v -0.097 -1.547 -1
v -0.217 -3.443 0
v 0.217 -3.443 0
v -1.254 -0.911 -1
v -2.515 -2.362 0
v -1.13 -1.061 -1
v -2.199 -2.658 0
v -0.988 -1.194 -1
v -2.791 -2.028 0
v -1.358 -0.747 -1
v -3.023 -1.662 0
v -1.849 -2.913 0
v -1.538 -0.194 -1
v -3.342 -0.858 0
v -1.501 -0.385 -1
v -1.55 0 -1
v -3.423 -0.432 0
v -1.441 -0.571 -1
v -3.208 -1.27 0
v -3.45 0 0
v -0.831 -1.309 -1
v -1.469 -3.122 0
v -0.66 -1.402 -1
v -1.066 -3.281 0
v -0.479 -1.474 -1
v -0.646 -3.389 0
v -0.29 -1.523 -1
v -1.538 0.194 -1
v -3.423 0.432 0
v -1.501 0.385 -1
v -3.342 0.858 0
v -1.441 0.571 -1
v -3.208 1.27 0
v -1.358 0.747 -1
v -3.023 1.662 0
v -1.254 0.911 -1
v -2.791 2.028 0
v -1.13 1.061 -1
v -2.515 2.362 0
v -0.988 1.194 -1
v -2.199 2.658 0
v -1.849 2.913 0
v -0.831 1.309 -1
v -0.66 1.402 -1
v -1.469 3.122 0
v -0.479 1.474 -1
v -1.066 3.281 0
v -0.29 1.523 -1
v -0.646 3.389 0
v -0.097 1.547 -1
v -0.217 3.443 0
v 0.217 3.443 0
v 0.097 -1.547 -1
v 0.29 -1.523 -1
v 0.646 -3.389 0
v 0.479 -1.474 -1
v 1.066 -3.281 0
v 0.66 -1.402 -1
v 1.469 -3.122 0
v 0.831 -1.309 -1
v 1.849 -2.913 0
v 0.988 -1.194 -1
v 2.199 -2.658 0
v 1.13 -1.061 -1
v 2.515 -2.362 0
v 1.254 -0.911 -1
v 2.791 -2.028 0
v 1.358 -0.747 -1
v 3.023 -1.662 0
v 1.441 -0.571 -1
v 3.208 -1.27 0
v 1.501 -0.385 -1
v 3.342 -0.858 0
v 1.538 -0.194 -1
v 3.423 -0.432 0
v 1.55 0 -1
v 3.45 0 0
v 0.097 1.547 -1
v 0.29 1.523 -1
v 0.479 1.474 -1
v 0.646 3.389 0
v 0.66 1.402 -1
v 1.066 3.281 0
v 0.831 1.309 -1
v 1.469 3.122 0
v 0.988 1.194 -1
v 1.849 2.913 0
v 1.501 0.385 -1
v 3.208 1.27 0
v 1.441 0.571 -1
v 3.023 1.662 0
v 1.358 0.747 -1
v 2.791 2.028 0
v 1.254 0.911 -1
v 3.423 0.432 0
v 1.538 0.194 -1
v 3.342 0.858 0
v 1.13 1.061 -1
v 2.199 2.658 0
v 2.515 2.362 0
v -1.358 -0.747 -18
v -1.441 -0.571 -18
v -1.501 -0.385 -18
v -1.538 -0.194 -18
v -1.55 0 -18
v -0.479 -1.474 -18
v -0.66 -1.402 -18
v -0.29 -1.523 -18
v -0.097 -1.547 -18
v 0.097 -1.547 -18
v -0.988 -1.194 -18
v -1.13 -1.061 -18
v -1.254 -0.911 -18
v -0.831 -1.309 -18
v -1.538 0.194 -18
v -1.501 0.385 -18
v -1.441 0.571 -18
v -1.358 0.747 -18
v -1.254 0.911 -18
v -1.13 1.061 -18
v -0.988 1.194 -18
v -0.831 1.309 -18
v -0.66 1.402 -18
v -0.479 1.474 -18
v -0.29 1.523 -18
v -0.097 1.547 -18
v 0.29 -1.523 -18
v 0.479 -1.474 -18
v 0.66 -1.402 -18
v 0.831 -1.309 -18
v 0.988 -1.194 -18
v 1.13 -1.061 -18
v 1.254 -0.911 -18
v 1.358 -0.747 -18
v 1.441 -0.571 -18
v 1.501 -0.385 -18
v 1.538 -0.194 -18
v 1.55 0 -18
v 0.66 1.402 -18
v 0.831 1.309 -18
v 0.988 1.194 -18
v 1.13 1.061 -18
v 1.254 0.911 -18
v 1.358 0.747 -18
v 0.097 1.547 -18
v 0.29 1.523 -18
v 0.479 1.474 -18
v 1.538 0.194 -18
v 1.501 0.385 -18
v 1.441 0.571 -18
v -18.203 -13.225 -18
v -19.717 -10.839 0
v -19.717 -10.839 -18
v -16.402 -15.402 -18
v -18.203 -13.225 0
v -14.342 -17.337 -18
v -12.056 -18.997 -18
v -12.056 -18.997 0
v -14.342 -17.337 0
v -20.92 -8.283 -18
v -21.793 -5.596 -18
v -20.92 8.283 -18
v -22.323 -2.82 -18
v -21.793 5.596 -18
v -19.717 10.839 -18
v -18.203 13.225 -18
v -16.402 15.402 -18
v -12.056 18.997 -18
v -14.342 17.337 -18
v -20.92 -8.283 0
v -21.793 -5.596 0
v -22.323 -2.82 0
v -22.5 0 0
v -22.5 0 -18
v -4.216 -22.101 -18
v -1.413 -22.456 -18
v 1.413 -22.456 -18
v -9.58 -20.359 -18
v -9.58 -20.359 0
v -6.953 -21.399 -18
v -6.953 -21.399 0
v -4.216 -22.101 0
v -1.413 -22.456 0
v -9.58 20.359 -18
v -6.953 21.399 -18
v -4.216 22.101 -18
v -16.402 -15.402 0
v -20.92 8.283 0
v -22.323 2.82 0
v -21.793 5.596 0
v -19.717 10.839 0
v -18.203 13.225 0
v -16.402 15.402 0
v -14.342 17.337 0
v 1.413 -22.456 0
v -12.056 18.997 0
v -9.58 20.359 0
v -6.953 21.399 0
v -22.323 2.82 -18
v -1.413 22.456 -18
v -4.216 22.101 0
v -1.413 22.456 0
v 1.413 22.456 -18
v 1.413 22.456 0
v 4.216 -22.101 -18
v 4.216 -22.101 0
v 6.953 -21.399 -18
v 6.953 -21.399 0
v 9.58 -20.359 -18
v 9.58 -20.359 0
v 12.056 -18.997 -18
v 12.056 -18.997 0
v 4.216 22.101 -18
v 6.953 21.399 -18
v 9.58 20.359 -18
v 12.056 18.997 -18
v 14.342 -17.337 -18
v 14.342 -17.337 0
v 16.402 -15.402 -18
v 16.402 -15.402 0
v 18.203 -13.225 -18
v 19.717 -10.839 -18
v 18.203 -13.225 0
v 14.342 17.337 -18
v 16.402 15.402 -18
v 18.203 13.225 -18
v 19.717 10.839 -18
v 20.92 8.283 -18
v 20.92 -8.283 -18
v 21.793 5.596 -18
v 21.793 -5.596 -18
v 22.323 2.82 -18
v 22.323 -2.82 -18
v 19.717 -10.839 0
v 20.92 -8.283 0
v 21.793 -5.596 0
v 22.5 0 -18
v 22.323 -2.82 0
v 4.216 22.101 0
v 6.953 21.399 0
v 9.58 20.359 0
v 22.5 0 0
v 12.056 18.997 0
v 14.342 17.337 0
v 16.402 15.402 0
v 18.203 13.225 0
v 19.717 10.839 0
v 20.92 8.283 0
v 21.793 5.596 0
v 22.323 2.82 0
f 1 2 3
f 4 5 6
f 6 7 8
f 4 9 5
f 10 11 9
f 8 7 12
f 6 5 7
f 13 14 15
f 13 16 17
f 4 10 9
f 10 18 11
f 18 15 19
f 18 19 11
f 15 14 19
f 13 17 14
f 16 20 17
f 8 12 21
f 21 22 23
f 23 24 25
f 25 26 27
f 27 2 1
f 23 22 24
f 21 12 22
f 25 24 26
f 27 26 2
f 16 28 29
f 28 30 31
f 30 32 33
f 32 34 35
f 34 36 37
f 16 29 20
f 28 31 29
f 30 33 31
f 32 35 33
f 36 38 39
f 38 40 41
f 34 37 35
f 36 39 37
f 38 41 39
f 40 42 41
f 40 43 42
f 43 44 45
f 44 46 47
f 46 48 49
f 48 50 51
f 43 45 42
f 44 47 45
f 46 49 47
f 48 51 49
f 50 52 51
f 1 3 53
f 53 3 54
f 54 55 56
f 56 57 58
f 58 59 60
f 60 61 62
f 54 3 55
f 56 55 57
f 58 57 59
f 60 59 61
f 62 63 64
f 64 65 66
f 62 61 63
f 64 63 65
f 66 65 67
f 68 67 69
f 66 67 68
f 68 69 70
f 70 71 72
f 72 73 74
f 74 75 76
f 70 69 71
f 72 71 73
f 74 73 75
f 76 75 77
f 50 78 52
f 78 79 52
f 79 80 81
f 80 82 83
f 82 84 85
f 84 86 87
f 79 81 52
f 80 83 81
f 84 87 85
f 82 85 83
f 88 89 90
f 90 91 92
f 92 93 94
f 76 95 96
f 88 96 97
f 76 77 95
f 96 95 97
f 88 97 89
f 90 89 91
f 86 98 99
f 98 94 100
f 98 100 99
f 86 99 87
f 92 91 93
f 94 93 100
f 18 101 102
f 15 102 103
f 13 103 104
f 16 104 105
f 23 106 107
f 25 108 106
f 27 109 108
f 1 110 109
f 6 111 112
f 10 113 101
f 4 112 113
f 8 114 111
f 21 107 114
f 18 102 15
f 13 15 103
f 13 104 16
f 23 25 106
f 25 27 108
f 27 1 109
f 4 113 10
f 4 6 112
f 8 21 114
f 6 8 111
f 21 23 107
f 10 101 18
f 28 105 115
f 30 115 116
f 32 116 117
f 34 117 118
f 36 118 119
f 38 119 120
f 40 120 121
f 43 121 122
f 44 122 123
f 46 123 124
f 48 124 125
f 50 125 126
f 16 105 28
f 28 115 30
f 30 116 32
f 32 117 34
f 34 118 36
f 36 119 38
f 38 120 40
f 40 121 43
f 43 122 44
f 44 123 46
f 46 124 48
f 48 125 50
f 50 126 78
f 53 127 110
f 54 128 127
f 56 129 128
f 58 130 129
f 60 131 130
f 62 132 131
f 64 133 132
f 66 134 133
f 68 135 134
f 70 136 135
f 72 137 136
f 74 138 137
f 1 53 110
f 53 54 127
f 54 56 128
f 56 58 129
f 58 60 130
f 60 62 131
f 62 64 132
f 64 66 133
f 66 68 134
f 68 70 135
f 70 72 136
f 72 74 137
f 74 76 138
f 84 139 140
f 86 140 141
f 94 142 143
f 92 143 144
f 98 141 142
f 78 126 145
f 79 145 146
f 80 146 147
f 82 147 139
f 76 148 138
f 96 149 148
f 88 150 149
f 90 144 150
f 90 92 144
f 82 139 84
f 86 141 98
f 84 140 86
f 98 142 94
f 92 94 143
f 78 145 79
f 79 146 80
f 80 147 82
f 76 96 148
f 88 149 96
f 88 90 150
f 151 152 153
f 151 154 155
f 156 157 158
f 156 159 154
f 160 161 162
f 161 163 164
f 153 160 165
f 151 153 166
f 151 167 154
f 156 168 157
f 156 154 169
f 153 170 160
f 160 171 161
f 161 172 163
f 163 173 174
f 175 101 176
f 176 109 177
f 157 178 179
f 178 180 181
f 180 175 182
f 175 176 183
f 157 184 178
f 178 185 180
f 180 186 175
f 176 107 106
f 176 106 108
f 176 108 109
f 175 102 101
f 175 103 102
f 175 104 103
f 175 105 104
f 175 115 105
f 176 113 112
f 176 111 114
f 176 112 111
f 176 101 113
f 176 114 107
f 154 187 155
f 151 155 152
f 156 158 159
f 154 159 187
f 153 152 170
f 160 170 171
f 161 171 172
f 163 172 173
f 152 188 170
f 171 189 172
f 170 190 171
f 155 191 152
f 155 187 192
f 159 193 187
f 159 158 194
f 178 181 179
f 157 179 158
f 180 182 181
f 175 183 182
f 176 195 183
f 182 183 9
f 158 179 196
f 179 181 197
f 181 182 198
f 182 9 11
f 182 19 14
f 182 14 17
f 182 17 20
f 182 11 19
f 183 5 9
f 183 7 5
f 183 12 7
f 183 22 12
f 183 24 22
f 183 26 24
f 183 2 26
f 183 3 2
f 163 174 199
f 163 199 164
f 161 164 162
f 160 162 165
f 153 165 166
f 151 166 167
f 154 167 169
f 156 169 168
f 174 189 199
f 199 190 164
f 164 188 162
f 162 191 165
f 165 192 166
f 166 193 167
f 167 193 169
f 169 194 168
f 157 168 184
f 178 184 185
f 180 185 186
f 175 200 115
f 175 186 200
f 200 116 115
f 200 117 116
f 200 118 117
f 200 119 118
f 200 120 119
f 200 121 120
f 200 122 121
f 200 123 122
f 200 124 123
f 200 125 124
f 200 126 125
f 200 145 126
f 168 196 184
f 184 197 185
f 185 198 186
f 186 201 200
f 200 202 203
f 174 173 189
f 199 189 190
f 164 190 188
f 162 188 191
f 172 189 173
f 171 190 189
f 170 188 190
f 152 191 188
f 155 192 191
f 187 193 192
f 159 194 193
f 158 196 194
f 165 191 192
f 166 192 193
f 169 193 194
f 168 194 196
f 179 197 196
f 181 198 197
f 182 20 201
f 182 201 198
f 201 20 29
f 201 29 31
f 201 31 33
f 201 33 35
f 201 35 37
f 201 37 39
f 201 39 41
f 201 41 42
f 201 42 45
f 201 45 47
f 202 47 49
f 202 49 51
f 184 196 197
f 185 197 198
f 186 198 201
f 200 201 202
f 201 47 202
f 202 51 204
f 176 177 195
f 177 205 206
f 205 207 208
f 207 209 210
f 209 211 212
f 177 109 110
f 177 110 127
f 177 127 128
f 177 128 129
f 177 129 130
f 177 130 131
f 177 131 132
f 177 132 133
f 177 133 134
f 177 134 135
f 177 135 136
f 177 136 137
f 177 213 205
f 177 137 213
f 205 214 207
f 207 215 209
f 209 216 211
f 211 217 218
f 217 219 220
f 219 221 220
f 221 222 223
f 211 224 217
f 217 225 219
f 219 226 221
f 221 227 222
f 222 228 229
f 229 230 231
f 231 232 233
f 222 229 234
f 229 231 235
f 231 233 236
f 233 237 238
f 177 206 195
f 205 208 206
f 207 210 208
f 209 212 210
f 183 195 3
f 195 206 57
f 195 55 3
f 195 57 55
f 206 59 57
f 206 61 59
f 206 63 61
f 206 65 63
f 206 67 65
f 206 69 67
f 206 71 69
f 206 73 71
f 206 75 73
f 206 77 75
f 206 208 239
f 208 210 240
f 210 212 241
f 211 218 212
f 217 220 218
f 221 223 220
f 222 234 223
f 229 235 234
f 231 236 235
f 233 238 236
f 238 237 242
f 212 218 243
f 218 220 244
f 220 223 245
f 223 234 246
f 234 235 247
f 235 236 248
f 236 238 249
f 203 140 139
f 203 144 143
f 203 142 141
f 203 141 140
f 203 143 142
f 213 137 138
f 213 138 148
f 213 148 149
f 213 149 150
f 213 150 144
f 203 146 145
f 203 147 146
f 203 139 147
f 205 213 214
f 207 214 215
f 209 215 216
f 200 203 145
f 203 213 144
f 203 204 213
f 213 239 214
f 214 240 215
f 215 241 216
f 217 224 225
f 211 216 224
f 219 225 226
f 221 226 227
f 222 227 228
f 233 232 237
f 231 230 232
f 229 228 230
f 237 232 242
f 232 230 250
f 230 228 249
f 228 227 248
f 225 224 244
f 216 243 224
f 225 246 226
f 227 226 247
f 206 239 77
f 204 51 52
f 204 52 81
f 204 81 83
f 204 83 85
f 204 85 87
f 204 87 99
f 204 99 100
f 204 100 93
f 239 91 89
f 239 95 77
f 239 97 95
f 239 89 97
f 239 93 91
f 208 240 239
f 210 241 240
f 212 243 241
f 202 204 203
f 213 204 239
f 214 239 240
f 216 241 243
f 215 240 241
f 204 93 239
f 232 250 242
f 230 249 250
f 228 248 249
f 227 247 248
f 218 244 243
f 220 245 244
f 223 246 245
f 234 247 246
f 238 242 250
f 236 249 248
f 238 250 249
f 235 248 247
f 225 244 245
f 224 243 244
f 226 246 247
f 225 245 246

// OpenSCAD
$fn = 50;

difference() {
	union() {
		translate(v = [0, 0, -18.0]) {
			cylinder(h = 18, r = 22.5);
		}
	}
	union() {
		translate(v = [0, 0, 0]) {
			rotate(a = [0, 0, 0]) {
				difference() {
					union() {
						translate(v = [0, 0, -21.0]) {
							cylinder(h = 21, r = 1.25);
						}
						translate(v = [0, 0, -1.0]) {
							cylinder(h = 1.0, r1 = 1.55, r2 = 3.45);
						}
						translate(v = [0, 0, -21.0]) {
							cylinder(h = 21, r = 1.55);
						}
						translate(v = [0, 0, -21.0]) {
							cylinder(h = 21, r = 1.25);
						}
					}
					union();
				}
			}
		}
	}
}
